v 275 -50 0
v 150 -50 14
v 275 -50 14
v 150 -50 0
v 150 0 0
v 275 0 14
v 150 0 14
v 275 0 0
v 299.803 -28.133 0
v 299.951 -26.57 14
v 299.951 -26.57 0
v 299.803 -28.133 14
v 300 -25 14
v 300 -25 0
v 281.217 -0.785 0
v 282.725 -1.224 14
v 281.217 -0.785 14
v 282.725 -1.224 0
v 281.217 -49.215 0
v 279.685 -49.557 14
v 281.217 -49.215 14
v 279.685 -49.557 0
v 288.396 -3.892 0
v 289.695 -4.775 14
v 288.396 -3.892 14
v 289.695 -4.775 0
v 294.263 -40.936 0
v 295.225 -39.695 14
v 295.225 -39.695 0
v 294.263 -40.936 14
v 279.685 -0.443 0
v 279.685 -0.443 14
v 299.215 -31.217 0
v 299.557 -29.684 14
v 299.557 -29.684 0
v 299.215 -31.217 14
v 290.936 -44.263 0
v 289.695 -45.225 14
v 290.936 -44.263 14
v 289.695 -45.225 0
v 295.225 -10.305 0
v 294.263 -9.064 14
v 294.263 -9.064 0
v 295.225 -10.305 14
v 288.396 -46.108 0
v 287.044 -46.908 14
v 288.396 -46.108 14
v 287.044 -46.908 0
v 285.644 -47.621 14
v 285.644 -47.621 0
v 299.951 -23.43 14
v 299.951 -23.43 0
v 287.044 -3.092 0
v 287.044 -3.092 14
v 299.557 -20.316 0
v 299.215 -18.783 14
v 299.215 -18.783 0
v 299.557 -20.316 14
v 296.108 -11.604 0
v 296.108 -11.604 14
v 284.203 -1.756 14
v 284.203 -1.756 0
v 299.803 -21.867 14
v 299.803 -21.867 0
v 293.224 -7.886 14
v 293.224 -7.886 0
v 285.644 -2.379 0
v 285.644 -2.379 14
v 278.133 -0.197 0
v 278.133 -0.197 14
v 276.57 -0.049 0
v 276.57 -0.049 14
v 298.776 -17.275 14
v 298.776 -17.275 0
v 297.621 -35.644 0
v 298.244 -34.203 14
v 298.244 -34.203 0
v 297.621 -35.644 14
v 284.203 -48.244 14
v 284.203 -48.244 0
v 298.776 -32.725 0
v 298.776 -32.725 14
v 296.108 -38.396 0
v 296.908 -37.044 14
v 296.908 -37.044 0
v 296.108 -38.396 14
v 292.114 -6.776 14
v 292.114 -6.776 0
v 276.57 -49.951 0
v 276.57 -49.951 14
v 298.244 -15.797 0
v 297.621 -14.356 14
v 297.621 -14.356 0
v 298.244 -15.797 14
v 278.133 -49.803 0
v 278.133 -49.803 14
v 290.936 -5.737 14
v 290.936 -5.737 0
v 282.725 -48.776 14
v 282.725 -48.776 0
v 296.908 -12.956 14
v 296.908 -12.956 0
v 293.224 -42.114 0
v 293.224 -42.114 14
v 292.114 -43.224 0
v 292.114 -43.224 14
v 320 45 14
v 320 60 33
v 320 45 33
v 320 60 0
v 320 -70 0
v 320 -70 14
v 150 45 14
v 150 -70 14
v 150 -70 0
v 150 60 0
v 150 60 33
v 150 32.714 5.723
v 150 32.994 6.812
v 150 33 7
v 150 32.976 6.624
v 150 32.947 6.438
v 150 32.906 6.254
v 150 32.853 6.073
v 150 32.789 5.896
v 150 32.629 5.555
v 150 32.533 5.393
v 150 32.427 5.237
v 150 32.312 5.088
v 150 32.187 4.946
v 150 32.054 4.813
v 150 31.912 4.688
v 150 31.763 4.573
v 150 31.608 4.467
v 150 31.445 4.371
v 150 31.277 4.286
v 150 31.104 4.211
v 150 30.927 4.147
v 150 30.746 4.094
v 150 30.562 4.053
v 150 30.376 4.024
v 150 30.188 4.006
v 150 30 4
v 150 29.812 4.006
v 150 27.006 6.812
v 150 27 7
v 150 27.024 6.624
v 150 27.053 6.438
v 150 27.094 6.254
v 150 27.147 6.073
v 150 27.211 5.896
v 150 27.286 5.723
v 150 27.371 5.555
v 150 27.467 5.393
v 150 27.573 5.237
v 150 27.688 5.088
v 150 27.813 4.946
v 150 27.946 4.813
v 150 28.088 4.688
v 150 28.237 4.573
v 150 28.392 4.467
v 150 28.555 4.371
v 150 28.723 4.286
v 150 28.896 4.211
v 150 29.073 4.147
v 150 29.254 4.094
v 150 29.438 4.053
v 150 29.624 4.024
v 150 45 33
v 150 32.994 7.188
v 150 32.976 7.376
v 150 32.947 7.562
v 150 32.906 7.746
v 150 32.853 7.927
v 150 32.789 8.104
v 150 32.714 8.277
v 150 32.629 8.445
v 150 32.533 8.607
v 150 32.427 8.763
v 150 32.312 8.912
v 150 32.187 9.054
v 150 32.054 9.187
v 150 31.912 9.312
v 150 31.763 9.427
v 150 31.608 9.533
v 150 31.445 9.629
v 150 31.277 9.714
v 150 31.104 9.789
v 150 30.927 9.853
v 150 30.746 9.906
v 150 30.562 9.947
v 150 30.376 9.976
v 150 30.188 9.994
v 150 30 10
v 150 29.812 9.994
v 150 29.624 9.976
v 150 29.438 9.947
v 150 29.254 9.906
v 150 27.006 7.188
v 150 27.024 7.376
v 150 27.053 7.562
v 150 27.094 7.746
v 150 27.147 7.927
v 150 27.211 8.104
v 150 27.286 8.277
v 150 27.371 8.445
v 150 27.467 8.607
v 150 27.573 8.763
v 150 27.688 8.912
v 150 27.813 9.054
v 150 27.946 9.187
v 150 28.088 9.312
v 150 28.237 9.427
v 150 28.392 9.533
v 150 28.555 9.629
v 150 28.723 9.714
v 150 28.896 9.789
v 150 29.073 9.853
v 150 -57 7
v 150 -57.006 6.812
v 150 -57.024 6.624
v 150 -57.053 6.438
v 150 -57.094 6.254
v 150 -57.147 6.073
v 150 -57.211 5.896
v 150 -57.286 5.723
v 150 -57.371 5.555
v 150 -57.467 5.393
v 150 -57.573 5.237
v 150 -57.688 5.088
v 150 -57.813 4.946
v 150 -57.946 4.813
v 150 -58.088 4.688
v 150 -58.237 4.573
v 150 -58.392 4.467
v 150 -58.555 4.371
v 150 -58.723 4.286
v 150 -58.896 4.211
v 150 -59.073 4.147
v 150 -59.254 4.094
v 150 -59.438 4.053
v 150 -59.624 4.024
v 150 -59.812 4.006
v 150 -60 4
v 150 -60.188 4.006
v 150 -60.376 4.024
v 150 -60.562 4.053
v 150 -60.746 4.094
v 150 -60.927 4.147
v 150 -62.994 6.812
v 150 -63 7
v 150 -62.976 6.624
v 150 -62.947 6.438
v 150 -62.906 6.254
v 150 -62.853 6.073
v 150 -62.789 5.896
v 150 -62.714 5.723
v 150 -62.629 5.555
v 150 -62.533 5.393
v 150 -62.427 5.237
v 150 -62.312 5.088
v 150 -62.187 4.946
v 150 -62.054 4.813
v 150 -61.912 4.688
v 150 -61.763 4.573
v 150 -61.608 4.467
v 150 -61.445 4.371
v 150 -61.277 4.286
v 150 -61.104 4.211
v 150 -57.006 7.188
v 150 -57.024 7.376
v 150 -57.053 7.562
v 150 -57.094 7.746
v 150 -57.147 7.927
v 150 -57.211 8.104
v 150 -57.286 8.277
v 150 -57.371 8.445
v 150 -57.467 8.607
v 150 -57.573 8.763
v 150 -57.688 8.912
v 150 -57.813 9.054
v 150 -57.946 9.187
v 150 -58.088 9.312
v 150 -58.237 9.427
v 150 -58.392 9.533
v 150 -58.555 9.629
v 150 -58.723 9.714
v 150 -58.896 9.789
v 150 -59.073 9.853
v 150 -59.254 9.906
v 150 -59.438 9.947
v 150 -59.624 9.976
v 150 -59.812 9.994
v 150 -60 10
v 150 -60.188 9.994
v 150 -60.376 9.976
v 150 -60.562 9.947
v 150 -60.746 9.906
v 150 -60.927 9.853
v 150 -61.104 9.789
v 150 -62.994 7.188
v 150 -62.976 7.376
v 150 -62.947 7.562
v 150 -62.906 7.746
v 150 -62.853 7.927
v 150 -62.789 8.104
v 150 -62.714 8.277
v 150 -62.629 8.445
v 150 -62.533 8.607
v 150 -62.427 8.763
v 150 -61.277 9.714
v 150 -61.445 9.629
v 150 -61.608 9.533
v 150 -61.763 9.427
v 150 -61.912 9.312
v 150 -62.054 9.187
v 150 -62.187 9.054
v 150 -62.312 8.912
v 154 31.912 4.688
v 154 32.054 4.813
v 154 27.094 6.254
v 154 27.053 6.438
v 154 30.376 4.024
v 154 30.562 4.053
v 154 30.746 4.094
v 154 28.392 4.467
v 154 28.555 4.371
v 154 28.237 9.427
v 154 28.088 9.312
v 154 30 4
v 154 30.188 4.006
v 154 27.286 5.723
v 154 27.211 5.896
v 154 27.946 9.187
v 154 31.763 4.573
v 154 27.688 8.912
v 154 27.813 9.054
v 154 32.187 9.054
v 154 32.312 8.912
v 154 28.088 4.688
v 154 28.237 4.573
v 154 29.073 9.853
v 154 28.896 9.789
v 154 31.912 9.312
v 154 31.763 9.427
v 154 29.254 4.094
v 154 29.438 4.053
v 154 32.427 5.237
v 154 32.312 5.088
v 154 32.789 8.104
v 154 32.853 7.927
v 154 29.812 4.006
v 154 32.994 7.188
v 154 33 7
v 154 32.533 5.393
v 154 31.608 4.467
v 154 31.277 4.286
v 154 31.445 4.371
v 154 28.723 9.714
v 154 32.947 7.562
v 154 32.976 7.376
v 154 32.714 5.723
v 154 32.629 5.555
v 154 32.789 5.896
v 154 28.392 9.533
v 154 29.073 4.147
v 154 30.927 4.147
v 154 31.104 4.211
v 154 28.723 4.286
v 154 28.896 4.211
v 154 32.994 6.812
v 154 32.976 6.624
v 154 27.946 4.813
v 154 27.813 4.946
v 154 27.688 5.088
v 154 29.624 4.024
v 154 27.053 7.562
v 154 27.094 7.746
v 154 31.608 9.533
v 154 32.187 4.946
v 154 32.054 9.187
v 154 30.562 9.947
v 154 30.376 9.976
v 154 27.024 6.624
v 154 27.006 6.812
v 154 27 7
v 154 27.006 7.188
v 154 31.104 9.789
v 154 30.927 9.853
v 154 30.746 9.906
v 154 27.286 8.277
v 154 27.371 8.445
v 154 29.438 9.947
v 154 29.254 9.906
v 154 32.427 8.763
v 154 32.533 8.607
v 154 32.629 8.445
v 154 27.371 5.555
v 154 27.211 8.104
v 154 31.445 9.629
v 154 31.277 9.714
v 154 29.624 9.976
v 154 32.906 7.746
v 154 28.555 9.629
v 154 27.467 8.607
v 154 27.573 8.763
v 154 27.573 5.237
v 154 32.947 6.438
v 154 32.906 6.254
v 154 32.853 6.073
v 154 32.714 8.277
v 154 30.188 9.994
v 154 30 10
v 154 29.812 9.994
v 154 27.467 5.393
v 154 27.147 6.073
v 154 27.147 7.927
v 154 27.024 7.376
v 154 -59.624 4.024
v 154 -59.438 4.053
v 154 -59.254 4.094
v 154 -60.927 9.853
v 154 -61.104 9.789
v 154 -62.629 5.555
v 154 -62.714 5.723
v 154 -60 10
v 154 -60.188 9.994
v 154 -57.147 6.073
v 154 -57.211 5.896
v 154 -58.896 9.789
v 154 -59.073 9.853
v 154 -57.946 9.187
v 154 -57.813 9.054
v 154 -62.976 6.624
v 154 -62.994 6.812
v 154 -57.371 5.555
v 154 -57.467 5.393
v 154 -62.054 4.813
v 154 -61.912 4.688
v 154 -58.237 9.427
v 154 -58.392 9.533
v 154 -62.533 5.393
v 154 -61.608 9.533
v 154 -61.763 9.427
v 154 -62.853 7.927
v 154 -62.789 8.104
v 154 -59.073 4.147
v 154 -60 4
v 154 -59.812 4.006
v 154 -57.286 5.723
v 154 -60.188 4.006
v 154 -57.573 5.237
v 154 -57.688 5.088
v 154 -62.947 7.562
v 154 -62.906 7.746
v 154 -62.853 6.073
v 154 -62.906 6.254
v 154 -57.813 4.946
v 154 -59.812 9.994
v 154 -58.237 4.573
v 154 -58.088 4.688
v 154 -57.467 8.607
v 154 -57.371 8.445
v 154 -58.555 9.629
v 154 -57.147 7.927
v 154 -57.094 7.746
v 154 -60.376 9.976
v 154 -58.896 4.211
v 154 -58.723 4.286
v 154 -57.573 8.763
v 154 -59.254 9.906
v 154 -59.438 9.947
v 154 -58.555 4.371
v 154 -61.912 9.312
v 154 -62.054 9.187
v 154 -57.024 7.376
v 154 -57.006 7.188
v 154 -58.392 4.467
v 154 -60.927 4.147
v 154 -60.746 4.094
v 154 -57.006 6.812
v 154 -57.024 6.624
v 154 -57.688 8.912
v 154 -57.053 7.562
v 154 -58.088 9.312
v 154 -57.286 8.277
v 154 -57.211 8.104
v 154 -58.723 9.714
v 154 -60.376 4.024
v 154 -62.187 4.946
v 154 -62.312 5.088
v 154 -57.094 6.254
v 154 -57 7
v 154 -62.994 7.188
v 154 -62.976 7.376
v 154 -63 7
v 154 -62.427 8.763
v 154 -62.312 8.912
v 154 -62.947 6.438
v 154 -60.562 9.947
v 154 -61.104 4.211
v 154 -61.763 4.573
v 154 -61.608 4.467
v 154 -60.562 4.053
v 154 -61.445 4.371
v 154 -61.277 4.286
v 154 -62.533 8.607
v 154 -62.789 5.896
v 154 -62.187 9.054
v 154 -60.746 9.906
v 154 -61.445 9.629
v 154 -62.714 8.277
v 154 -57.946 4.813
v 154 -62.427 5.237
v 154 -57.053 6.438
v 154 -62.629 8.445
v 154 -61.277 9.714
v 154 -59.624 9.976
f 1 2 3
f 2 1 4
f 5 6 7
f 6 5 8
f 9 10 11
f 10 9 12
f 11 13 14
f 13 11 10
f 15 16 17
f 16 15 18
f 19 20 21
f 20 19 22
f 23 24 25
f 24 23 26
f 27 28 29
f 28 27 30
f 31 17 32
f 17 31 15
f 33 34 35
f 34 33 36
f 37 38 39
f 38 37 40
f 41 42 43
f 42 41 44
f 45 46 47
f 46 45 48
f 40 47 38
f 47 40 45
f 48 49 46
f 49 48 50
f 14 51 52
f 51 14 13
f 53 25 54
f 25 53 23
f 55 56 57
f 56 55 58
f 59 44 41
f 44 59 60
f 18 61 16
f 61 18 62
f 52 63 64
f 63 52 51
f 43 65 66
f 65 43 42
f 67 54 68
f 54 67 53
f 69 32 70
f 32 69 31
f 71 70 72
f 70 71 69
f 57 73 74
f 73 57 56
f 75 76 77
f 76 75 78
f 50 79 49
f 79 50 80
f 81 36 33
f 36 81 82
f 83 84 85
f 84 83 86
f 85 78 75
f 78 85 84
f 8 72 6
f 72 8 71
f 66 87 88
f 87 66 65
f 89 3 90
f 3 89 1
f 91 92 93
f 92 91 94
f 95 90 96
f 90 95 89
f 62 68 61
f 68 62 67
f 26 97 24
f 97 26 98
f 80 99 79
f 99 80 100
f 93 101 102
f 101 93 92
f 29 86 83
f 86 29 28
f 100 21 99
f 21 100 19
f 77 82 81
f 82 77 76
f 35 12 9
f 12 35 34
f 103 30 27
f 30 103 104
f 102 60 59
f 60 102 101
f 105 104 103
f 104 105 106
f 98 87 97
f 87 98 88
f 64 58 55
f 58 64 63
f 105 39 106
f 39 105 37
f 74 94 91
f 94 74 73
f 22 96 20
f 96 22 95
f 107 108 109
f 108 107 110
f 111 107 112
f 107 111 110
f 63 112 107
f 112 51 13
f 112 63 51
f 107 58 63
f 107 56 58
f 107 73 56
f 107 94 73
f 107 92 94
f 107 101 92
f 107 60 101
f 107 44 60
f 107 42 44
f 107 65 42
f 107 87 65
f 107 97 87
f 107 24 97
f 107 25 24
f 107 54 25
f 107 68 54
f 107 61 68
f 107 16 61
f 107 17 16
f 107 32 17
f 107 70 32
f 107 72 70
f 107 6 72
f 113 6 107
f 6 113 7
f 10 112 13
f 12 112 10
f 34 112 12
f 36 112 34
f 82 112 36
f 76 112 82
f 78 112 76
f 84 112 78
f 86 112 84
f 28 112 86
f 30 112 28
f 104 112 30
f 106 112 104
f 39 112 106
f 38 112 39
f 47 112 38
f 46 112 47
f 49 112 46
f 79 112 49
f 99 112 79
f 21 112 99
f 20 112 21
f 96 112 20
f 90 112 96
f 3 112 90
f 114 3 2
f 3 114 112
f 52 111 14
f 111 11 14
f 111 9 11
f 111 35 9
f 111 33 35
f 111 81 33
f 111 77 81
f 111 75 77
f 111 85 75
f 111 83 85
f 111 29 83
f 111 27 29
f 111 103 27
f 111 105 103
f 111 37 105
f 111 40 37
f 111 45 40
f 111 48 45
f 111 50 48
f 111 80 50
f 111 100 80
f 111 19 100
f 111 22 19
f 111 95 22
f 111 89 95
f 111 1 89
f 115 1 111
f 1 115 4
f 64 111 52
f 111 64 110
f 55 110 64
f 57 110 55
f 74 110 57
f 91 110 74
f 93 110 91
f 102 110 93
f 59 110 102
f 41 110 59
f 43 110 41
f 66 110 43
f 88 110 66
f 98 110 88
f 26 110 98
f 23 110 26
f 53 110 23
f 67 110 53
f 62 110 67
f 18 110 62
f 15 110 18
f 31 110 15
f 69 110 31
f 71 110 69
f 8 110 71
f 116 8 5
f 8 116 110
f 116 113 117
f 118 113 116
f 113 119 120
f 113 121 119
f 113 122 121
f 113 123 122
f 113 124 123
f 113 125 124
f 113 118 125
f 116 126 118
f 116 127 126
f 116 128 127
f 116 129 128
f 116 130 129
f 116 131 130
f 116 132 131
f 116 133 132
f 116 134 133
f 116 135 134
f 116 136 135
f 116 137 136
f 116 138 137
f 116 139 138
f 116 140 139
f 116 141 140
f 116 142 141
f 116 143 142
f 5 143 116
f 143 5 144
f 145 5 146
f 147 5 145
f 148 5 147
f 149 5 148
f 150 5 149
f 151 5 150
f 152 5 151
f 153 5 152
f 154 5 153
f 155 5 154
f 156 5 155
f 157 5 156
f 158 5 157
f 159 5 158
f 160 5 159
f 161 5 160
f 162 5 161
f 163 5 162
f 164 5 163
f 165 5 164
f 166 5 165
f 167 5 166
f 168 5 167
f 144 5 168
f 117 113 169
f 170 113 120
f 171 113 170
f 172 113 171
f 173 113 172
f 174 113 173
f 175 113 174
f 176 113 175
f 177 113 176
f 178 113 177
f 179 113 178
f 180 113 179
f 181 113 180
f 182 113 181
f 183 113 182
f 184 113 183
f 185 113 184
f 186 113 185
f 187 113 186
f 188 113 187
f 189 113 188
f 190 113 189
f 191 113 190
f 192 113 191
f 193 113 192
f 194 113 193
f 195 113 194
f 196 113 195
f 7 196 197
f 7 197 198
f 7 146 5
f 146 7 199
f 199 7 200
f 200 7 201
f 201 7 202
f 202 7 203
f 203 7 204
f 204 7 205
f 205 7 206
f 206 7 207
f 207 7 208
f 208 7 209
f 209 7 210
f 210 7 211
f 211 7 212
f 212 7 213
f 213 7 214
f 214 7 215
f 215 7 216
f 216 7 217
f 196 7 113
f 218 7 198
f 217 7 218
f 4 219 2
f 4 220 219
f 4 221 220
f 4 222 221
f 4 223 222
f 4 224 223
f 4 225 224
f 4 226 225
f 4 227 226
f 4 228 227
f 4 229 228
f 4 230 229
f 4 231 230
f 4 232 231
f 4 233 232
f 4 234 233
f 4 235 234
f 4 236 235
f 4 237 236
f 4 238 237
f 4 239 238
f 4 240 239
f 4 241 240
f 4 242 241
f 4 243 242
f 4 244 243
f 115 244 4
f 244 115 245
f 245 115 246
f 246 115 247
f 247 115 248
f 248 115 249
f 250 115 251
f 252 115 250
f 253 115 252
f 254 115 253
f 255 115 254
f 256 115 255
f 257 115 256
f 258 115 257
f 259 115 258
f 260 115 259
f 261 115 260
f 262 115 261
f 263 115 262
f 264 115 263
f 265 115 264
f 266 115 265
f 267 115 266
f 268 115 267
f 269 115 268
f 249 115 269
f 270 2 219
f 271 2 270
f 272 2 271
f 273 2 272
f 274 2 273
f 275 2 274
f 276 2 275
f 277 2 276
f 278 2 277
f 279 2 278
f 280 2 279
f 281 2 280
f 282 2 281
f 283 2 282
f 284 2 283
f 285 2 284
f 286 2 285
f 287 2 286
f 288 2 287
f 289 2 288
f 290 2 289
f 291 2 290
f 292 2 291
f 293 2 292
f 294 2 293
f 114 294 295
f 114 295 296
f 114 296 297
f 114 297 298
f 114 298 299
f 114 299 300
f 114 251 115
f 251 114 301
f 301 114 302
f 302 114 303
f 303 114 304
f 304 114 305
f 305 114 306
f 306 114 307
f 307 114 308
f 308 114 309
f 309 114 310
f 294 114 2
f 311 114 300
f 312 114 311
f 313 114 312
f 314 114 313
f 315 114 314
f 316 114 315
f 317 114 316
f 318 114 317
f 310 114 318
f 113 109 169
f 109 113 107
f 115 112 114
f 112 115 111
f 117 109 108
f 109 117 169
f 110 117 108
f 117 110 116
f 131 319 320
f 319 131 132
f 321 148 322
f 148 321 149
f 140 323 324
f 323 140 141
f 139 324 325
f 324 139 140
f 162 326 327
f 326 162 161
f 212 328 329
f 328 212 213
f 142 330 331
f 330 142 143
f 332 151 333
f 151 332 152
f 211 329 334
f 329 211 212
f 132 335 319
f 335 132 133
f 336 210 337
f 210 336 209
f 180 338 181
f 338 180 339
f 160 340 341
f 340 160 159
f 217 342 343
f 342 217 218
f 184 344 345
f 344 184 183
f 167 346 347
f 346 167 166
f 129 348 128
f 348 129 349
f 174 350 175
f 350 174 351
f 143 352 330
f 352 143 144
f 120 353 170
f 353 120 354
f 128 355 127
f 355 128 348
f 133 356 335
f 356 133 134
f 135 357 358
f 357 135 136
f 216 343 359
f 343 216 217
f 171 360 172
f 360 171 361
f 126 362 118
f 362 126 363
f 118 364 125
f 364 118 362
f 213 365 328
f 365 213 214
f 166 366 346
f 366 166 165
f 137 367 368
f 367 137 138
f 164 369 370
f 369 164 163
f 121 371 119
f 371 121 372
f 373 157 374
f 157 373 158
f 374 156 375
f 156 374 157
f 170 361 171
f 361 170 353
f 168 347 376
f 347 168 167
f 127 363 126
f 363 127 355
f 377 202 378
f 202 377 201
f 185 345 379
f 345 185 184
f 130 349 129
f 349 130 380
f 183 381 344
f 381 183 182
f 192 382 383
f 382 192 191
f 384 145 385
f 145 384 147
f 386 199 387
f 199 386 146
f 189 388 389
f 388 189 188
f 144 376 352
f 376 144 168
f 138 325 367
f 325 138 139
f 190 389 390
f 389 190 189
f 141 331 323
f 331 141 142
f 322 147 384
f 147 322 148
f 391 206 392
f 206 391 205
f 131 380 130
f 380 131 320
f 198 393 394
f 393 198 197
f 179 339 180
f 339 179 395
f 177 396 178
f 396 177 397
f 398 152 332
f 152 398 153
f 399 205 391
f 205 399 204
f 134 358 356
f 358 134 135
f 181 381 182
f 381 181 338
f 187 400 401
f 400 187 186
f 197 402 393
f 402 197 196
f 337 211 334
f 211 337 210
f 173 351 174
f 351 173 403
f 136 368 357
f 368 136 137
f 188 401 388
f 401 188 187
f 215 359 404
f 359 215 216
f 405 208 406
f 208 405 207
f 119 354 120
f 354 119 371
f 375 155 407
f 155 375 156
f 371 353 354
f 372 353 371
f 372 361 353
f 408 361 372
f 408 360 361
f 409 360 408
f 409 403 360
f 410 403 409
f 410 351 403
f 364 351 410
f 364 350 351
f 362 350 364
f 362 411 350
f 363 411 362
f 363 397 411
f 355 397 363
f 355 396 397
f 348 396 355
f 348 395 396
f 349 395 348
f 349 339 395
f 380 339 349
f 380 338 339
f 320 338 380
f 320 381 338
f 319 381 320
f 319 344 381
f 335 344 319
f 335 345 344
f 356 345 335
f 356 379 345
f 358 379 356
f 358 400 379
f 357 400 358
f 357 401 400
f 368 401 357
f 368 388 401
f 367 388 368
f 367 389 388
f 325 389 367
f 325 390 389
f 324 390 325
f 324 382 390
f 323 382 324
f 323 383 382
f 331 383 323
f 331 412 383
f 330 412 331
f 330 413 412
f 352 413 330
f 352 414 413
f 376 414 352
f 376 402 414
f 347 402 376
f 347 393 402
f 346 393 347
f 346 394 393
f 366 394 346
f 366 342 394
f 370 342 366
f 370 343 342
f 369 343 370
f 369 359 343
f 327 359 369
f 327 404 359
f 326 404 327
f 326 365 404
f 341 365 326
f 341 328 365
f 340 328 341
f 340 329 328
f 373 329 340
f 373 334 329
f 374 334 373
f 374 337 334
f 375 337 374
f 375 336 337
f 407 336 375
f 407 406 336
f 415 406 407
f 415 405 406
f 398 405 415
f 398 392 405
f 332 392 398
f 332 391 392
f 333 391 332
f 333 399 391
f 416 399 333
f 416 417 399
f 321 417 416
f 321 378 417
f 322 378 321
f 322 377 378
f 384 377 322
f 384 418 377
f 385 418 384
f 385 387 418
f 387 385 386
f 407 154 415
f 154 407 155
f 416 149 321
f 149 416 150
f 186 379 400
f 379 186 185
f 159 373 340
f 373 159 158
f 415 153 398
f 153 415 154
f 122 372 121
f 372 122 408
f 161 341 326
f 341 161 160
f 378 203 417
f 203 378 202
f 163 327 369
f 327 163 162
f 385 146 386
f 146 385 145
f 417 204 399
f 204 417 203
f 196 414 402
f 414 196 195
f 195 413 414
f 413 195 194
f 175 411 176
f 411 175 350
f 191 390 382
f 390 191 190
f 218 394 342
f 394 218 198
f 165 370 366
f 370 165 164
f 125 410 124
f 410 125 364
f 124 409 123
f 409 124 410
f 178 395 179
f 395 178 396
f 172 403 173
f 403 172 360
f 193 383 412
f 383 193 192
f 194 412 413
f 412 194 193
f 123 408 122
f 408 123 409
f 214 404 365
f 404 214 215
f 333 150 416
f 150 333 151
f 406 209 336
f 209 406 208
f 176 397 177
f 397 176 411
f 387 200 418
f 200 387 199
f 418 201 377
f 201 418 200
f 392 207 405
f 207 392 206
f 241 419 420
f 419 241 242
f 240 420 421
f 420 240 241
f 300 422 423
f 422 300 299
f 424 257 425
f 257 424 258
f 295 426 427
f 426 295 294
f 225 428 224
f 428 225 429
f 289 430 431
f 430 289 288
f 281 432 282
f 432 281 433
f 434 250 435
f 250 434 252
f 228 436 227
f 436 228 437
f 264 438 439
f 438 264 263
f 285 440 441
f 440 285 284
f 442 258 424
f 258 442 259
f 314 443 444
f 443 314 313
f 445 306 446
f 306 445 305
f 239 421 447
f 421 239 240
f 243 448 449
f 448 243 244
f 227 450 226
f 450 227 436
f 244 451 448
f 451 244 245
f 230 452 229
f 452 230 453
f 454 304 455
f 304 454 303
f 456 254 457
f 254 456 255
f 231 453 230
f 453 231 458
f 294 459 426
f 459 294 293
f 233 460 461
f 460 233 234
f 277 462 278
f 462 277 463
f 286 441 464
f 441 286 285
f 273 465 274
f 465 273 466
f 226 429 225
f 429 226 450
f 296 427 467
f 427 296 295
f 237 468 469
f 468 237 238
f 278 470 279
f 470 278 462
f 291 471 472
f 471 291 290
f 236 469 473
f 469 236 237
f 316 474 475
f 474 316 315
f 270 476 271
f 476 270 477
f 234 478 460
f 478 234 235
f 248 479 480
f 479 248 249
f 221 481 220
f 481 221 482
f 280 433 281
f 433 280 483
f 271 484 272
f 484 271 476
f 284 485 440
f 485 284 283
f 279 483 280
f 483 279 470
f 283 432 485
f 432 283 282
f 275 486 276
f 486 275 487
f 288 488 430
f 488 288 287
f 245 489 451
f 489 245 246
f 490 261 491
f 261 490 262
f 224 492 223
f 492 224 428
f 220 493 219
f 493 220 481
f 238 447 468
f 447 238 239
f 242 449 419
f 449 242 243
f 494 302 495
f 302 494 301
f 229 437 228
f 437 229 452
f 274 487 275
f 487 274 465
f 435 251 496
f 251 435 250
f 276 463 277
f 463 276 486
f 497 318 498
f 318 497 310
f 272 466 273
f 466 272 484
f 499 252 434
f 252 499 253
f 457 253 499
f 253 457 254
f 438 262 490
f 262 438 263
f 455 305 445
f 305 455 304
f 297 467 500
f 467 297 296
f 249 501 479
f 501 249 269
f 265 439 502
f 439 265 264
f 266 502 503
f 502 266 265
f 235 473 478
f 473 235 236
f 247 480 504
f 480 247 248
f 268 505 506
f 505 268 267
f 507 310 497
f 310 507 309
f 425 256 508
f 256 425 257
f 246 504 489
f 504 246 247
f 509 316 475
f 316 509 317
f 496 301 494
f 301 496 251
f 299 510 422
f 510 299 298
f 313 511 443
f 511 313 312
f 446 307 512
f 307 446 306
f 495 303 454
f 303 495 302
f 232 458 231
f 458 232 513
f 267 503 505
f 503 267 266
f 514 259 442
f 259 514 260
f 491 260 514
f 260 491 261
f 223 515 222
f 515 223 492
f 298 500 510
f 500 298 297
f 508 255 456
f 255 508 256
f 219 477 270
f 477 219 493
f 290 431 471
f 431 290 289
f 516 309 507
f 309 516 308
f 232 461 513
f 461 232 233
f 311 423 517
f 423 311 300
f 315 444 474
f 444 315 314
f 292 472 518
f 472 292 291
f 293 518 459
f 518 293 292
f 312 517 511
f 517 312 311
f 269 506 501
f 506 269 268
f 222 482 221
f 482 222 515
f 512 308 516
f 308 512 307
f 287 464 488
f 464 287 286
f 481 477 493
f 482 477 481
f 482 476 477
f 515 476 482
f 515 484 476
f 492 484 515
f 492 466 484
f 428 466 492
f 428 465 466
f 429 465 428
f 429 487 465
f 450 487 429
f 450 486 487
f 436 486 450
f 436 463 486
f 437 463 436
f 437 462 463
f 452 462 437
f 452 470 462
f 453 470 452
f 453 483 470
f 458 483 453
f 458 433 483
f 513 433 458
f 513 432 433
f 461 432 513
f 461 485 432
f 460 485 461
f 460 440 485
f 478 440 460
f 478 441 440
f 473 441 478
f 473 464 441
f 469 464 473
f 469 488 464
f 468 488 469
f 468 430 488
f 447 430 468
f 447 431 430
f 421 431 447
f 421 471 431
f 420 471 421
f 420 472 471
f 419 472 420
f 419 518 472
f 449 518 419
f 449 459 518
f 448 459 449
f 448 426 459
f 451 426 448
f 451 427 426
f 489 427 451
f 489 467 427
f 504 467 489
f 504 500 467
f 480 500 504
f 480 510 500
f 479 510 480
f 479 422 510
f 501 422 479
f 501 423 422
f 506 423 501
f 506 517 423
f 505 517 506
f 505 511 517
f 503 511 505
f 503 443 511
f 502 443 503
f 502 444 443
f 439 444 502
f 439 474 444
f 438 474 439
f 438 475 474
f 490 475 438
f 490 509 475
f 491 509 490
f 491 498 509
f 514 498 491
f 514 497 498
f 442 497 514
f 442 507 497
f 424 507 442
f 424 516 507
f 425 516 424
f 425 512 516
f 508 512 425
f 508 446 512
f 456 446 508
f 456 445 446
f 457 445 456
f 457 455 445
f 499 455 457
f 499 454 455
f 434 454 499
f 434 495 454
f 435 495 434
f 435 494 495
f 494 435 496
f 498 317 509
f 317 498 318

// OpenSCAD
// file: removal-side-holes.scad
/*

    Removal Side Holes
    
    By Anton Augustsson


*/


module removalSideHoles (
    thickness,
    length,
    x,y,z
    ){
/*
    ---------- Local varibles ---------- 
*/

r = 25;
h = thickness+1;
lengthRectangle = length-r*2;


/*
    ---------- Code ---------- 
*/

translate([
    x,
    y+h-1,
    z]) 
rotate([90,0,0])
union () {

translate([
    r,
    r,
    -1
    ])  
cylinder(
    h=h+2,
    r=r
    );

translate([
    r,
    0,
    -1
    ])
cube(size = [
    lengthRectangle,
    r*2,
    h+2
    ]);

translate([
    length-r,
    r,
    -1
    ])  
cylinder(
    h=h+2,
    r=r
    );


}}
    
/*
    ---------- Example ---------- 
*/


standardSheathingWidth = 1220; 
standardSheathingLength = 2440;

mdfTopThickness = 19;
plywoodTopThickness = 12;

// Side protection for ply and mdf
edgeTopThickness = 20; 
edgeTopWidth = 167;
edgeTopLengthX = standardSheathingLength
    +2*edgeTopThickness;
edgeTopLengthY = standardSheathingWidth
    +2*edgeTopThickness;

// 4 list betweend mdf and ply (Pine)
listTopThickness = 20; 
listTopWidth = 80;
listTopLengthX = standardSheathingLength/4
    -listTopThickness;
listTopLengthY = standardSheathingWidth;

// 6 legs (Pine)
legLength = 900
    -plywoodTopThickness
    -mdfTopThickness
    -listTopWidth;
legWidth = 69;
legThickness = 42;

// 3 bottom list (Pine)
listBottomThickness = 20; 
listBottomWidth1 = 60;
listBottomWidth2 = listBottomWidth1
    -plywoodTopThickness;
listBottomLengthX = standardSheathingLength;
listBottomLengthY = standardSheathingWidth;
listBottomLengthY2 = standardSheathingWidth
    +listBottomThickness*2;
bottomHeight = 100;

storageUnitLength=standardSheathingLength/2
    -legThickness*3/2;
storageUnitWidth=400;  
storageUnitHeight=(900-edgeTopWidth)
    -(bottomHeight+listBottomWidth2);
storageUnitThickness=12;


thickness = edgeTopThickness;
length = 300;

x=0;
y=0;
z=0;
yRotate=0;

removalSideHoles (
    thickness,
    length,
    x,y,z
    );
// main file
/*

    Template Removal Side Holes Male
    
    By Anton Augustsson


*/
$fn=100;  // accuracy
use <removal-side-holes.scad>;

/*
    ---------- Local varibles ---------- 
*/

h=14;
positionFromUpperEdge=95;

length=300;
extra=20;
fenceThickness=15; 

widthRemovalSideHoles=50;
edgeTopThickness = 20; 

maleR=3;
maleLength=4;

/*
    ---------- Code ---------- 
*/

difference() { 
union () {
translate([
    (length+extra*2)/2-extra,
    -widthRemovalSideHoles
    -extra,
    0
    ])  
cube(size = [
    (length+extra*2)/2,
    positionFromUpperEdge+extra,
    h
    ]);

translate([
    (length+extra*2)/2-extra,
    positionFromUpperEdge
    -(widthRemovalSideHoles),
    0
    ])  
cube(size = [
    (length+extra*2)/2,
    fenceThickness,
    h+edgeTopThickness-1
    ]);
    
}

rotate([90,0,0])
removalSideHoles (
    edgeTopThickness,
    length,
    0,0,0
    );

translate([
    (length)/2-1,
    30,
    h/2
    ])  
rotate([0,90,0])
cylinder(
    h=maleLength+1,
    r=maleR
    );

translate([
    (length)/2-1,
    -60,
    h/2
    ])  
rotate([0,90,0])
cylinder(
    h=maleLength+1,
    r=maleR
    );
}
